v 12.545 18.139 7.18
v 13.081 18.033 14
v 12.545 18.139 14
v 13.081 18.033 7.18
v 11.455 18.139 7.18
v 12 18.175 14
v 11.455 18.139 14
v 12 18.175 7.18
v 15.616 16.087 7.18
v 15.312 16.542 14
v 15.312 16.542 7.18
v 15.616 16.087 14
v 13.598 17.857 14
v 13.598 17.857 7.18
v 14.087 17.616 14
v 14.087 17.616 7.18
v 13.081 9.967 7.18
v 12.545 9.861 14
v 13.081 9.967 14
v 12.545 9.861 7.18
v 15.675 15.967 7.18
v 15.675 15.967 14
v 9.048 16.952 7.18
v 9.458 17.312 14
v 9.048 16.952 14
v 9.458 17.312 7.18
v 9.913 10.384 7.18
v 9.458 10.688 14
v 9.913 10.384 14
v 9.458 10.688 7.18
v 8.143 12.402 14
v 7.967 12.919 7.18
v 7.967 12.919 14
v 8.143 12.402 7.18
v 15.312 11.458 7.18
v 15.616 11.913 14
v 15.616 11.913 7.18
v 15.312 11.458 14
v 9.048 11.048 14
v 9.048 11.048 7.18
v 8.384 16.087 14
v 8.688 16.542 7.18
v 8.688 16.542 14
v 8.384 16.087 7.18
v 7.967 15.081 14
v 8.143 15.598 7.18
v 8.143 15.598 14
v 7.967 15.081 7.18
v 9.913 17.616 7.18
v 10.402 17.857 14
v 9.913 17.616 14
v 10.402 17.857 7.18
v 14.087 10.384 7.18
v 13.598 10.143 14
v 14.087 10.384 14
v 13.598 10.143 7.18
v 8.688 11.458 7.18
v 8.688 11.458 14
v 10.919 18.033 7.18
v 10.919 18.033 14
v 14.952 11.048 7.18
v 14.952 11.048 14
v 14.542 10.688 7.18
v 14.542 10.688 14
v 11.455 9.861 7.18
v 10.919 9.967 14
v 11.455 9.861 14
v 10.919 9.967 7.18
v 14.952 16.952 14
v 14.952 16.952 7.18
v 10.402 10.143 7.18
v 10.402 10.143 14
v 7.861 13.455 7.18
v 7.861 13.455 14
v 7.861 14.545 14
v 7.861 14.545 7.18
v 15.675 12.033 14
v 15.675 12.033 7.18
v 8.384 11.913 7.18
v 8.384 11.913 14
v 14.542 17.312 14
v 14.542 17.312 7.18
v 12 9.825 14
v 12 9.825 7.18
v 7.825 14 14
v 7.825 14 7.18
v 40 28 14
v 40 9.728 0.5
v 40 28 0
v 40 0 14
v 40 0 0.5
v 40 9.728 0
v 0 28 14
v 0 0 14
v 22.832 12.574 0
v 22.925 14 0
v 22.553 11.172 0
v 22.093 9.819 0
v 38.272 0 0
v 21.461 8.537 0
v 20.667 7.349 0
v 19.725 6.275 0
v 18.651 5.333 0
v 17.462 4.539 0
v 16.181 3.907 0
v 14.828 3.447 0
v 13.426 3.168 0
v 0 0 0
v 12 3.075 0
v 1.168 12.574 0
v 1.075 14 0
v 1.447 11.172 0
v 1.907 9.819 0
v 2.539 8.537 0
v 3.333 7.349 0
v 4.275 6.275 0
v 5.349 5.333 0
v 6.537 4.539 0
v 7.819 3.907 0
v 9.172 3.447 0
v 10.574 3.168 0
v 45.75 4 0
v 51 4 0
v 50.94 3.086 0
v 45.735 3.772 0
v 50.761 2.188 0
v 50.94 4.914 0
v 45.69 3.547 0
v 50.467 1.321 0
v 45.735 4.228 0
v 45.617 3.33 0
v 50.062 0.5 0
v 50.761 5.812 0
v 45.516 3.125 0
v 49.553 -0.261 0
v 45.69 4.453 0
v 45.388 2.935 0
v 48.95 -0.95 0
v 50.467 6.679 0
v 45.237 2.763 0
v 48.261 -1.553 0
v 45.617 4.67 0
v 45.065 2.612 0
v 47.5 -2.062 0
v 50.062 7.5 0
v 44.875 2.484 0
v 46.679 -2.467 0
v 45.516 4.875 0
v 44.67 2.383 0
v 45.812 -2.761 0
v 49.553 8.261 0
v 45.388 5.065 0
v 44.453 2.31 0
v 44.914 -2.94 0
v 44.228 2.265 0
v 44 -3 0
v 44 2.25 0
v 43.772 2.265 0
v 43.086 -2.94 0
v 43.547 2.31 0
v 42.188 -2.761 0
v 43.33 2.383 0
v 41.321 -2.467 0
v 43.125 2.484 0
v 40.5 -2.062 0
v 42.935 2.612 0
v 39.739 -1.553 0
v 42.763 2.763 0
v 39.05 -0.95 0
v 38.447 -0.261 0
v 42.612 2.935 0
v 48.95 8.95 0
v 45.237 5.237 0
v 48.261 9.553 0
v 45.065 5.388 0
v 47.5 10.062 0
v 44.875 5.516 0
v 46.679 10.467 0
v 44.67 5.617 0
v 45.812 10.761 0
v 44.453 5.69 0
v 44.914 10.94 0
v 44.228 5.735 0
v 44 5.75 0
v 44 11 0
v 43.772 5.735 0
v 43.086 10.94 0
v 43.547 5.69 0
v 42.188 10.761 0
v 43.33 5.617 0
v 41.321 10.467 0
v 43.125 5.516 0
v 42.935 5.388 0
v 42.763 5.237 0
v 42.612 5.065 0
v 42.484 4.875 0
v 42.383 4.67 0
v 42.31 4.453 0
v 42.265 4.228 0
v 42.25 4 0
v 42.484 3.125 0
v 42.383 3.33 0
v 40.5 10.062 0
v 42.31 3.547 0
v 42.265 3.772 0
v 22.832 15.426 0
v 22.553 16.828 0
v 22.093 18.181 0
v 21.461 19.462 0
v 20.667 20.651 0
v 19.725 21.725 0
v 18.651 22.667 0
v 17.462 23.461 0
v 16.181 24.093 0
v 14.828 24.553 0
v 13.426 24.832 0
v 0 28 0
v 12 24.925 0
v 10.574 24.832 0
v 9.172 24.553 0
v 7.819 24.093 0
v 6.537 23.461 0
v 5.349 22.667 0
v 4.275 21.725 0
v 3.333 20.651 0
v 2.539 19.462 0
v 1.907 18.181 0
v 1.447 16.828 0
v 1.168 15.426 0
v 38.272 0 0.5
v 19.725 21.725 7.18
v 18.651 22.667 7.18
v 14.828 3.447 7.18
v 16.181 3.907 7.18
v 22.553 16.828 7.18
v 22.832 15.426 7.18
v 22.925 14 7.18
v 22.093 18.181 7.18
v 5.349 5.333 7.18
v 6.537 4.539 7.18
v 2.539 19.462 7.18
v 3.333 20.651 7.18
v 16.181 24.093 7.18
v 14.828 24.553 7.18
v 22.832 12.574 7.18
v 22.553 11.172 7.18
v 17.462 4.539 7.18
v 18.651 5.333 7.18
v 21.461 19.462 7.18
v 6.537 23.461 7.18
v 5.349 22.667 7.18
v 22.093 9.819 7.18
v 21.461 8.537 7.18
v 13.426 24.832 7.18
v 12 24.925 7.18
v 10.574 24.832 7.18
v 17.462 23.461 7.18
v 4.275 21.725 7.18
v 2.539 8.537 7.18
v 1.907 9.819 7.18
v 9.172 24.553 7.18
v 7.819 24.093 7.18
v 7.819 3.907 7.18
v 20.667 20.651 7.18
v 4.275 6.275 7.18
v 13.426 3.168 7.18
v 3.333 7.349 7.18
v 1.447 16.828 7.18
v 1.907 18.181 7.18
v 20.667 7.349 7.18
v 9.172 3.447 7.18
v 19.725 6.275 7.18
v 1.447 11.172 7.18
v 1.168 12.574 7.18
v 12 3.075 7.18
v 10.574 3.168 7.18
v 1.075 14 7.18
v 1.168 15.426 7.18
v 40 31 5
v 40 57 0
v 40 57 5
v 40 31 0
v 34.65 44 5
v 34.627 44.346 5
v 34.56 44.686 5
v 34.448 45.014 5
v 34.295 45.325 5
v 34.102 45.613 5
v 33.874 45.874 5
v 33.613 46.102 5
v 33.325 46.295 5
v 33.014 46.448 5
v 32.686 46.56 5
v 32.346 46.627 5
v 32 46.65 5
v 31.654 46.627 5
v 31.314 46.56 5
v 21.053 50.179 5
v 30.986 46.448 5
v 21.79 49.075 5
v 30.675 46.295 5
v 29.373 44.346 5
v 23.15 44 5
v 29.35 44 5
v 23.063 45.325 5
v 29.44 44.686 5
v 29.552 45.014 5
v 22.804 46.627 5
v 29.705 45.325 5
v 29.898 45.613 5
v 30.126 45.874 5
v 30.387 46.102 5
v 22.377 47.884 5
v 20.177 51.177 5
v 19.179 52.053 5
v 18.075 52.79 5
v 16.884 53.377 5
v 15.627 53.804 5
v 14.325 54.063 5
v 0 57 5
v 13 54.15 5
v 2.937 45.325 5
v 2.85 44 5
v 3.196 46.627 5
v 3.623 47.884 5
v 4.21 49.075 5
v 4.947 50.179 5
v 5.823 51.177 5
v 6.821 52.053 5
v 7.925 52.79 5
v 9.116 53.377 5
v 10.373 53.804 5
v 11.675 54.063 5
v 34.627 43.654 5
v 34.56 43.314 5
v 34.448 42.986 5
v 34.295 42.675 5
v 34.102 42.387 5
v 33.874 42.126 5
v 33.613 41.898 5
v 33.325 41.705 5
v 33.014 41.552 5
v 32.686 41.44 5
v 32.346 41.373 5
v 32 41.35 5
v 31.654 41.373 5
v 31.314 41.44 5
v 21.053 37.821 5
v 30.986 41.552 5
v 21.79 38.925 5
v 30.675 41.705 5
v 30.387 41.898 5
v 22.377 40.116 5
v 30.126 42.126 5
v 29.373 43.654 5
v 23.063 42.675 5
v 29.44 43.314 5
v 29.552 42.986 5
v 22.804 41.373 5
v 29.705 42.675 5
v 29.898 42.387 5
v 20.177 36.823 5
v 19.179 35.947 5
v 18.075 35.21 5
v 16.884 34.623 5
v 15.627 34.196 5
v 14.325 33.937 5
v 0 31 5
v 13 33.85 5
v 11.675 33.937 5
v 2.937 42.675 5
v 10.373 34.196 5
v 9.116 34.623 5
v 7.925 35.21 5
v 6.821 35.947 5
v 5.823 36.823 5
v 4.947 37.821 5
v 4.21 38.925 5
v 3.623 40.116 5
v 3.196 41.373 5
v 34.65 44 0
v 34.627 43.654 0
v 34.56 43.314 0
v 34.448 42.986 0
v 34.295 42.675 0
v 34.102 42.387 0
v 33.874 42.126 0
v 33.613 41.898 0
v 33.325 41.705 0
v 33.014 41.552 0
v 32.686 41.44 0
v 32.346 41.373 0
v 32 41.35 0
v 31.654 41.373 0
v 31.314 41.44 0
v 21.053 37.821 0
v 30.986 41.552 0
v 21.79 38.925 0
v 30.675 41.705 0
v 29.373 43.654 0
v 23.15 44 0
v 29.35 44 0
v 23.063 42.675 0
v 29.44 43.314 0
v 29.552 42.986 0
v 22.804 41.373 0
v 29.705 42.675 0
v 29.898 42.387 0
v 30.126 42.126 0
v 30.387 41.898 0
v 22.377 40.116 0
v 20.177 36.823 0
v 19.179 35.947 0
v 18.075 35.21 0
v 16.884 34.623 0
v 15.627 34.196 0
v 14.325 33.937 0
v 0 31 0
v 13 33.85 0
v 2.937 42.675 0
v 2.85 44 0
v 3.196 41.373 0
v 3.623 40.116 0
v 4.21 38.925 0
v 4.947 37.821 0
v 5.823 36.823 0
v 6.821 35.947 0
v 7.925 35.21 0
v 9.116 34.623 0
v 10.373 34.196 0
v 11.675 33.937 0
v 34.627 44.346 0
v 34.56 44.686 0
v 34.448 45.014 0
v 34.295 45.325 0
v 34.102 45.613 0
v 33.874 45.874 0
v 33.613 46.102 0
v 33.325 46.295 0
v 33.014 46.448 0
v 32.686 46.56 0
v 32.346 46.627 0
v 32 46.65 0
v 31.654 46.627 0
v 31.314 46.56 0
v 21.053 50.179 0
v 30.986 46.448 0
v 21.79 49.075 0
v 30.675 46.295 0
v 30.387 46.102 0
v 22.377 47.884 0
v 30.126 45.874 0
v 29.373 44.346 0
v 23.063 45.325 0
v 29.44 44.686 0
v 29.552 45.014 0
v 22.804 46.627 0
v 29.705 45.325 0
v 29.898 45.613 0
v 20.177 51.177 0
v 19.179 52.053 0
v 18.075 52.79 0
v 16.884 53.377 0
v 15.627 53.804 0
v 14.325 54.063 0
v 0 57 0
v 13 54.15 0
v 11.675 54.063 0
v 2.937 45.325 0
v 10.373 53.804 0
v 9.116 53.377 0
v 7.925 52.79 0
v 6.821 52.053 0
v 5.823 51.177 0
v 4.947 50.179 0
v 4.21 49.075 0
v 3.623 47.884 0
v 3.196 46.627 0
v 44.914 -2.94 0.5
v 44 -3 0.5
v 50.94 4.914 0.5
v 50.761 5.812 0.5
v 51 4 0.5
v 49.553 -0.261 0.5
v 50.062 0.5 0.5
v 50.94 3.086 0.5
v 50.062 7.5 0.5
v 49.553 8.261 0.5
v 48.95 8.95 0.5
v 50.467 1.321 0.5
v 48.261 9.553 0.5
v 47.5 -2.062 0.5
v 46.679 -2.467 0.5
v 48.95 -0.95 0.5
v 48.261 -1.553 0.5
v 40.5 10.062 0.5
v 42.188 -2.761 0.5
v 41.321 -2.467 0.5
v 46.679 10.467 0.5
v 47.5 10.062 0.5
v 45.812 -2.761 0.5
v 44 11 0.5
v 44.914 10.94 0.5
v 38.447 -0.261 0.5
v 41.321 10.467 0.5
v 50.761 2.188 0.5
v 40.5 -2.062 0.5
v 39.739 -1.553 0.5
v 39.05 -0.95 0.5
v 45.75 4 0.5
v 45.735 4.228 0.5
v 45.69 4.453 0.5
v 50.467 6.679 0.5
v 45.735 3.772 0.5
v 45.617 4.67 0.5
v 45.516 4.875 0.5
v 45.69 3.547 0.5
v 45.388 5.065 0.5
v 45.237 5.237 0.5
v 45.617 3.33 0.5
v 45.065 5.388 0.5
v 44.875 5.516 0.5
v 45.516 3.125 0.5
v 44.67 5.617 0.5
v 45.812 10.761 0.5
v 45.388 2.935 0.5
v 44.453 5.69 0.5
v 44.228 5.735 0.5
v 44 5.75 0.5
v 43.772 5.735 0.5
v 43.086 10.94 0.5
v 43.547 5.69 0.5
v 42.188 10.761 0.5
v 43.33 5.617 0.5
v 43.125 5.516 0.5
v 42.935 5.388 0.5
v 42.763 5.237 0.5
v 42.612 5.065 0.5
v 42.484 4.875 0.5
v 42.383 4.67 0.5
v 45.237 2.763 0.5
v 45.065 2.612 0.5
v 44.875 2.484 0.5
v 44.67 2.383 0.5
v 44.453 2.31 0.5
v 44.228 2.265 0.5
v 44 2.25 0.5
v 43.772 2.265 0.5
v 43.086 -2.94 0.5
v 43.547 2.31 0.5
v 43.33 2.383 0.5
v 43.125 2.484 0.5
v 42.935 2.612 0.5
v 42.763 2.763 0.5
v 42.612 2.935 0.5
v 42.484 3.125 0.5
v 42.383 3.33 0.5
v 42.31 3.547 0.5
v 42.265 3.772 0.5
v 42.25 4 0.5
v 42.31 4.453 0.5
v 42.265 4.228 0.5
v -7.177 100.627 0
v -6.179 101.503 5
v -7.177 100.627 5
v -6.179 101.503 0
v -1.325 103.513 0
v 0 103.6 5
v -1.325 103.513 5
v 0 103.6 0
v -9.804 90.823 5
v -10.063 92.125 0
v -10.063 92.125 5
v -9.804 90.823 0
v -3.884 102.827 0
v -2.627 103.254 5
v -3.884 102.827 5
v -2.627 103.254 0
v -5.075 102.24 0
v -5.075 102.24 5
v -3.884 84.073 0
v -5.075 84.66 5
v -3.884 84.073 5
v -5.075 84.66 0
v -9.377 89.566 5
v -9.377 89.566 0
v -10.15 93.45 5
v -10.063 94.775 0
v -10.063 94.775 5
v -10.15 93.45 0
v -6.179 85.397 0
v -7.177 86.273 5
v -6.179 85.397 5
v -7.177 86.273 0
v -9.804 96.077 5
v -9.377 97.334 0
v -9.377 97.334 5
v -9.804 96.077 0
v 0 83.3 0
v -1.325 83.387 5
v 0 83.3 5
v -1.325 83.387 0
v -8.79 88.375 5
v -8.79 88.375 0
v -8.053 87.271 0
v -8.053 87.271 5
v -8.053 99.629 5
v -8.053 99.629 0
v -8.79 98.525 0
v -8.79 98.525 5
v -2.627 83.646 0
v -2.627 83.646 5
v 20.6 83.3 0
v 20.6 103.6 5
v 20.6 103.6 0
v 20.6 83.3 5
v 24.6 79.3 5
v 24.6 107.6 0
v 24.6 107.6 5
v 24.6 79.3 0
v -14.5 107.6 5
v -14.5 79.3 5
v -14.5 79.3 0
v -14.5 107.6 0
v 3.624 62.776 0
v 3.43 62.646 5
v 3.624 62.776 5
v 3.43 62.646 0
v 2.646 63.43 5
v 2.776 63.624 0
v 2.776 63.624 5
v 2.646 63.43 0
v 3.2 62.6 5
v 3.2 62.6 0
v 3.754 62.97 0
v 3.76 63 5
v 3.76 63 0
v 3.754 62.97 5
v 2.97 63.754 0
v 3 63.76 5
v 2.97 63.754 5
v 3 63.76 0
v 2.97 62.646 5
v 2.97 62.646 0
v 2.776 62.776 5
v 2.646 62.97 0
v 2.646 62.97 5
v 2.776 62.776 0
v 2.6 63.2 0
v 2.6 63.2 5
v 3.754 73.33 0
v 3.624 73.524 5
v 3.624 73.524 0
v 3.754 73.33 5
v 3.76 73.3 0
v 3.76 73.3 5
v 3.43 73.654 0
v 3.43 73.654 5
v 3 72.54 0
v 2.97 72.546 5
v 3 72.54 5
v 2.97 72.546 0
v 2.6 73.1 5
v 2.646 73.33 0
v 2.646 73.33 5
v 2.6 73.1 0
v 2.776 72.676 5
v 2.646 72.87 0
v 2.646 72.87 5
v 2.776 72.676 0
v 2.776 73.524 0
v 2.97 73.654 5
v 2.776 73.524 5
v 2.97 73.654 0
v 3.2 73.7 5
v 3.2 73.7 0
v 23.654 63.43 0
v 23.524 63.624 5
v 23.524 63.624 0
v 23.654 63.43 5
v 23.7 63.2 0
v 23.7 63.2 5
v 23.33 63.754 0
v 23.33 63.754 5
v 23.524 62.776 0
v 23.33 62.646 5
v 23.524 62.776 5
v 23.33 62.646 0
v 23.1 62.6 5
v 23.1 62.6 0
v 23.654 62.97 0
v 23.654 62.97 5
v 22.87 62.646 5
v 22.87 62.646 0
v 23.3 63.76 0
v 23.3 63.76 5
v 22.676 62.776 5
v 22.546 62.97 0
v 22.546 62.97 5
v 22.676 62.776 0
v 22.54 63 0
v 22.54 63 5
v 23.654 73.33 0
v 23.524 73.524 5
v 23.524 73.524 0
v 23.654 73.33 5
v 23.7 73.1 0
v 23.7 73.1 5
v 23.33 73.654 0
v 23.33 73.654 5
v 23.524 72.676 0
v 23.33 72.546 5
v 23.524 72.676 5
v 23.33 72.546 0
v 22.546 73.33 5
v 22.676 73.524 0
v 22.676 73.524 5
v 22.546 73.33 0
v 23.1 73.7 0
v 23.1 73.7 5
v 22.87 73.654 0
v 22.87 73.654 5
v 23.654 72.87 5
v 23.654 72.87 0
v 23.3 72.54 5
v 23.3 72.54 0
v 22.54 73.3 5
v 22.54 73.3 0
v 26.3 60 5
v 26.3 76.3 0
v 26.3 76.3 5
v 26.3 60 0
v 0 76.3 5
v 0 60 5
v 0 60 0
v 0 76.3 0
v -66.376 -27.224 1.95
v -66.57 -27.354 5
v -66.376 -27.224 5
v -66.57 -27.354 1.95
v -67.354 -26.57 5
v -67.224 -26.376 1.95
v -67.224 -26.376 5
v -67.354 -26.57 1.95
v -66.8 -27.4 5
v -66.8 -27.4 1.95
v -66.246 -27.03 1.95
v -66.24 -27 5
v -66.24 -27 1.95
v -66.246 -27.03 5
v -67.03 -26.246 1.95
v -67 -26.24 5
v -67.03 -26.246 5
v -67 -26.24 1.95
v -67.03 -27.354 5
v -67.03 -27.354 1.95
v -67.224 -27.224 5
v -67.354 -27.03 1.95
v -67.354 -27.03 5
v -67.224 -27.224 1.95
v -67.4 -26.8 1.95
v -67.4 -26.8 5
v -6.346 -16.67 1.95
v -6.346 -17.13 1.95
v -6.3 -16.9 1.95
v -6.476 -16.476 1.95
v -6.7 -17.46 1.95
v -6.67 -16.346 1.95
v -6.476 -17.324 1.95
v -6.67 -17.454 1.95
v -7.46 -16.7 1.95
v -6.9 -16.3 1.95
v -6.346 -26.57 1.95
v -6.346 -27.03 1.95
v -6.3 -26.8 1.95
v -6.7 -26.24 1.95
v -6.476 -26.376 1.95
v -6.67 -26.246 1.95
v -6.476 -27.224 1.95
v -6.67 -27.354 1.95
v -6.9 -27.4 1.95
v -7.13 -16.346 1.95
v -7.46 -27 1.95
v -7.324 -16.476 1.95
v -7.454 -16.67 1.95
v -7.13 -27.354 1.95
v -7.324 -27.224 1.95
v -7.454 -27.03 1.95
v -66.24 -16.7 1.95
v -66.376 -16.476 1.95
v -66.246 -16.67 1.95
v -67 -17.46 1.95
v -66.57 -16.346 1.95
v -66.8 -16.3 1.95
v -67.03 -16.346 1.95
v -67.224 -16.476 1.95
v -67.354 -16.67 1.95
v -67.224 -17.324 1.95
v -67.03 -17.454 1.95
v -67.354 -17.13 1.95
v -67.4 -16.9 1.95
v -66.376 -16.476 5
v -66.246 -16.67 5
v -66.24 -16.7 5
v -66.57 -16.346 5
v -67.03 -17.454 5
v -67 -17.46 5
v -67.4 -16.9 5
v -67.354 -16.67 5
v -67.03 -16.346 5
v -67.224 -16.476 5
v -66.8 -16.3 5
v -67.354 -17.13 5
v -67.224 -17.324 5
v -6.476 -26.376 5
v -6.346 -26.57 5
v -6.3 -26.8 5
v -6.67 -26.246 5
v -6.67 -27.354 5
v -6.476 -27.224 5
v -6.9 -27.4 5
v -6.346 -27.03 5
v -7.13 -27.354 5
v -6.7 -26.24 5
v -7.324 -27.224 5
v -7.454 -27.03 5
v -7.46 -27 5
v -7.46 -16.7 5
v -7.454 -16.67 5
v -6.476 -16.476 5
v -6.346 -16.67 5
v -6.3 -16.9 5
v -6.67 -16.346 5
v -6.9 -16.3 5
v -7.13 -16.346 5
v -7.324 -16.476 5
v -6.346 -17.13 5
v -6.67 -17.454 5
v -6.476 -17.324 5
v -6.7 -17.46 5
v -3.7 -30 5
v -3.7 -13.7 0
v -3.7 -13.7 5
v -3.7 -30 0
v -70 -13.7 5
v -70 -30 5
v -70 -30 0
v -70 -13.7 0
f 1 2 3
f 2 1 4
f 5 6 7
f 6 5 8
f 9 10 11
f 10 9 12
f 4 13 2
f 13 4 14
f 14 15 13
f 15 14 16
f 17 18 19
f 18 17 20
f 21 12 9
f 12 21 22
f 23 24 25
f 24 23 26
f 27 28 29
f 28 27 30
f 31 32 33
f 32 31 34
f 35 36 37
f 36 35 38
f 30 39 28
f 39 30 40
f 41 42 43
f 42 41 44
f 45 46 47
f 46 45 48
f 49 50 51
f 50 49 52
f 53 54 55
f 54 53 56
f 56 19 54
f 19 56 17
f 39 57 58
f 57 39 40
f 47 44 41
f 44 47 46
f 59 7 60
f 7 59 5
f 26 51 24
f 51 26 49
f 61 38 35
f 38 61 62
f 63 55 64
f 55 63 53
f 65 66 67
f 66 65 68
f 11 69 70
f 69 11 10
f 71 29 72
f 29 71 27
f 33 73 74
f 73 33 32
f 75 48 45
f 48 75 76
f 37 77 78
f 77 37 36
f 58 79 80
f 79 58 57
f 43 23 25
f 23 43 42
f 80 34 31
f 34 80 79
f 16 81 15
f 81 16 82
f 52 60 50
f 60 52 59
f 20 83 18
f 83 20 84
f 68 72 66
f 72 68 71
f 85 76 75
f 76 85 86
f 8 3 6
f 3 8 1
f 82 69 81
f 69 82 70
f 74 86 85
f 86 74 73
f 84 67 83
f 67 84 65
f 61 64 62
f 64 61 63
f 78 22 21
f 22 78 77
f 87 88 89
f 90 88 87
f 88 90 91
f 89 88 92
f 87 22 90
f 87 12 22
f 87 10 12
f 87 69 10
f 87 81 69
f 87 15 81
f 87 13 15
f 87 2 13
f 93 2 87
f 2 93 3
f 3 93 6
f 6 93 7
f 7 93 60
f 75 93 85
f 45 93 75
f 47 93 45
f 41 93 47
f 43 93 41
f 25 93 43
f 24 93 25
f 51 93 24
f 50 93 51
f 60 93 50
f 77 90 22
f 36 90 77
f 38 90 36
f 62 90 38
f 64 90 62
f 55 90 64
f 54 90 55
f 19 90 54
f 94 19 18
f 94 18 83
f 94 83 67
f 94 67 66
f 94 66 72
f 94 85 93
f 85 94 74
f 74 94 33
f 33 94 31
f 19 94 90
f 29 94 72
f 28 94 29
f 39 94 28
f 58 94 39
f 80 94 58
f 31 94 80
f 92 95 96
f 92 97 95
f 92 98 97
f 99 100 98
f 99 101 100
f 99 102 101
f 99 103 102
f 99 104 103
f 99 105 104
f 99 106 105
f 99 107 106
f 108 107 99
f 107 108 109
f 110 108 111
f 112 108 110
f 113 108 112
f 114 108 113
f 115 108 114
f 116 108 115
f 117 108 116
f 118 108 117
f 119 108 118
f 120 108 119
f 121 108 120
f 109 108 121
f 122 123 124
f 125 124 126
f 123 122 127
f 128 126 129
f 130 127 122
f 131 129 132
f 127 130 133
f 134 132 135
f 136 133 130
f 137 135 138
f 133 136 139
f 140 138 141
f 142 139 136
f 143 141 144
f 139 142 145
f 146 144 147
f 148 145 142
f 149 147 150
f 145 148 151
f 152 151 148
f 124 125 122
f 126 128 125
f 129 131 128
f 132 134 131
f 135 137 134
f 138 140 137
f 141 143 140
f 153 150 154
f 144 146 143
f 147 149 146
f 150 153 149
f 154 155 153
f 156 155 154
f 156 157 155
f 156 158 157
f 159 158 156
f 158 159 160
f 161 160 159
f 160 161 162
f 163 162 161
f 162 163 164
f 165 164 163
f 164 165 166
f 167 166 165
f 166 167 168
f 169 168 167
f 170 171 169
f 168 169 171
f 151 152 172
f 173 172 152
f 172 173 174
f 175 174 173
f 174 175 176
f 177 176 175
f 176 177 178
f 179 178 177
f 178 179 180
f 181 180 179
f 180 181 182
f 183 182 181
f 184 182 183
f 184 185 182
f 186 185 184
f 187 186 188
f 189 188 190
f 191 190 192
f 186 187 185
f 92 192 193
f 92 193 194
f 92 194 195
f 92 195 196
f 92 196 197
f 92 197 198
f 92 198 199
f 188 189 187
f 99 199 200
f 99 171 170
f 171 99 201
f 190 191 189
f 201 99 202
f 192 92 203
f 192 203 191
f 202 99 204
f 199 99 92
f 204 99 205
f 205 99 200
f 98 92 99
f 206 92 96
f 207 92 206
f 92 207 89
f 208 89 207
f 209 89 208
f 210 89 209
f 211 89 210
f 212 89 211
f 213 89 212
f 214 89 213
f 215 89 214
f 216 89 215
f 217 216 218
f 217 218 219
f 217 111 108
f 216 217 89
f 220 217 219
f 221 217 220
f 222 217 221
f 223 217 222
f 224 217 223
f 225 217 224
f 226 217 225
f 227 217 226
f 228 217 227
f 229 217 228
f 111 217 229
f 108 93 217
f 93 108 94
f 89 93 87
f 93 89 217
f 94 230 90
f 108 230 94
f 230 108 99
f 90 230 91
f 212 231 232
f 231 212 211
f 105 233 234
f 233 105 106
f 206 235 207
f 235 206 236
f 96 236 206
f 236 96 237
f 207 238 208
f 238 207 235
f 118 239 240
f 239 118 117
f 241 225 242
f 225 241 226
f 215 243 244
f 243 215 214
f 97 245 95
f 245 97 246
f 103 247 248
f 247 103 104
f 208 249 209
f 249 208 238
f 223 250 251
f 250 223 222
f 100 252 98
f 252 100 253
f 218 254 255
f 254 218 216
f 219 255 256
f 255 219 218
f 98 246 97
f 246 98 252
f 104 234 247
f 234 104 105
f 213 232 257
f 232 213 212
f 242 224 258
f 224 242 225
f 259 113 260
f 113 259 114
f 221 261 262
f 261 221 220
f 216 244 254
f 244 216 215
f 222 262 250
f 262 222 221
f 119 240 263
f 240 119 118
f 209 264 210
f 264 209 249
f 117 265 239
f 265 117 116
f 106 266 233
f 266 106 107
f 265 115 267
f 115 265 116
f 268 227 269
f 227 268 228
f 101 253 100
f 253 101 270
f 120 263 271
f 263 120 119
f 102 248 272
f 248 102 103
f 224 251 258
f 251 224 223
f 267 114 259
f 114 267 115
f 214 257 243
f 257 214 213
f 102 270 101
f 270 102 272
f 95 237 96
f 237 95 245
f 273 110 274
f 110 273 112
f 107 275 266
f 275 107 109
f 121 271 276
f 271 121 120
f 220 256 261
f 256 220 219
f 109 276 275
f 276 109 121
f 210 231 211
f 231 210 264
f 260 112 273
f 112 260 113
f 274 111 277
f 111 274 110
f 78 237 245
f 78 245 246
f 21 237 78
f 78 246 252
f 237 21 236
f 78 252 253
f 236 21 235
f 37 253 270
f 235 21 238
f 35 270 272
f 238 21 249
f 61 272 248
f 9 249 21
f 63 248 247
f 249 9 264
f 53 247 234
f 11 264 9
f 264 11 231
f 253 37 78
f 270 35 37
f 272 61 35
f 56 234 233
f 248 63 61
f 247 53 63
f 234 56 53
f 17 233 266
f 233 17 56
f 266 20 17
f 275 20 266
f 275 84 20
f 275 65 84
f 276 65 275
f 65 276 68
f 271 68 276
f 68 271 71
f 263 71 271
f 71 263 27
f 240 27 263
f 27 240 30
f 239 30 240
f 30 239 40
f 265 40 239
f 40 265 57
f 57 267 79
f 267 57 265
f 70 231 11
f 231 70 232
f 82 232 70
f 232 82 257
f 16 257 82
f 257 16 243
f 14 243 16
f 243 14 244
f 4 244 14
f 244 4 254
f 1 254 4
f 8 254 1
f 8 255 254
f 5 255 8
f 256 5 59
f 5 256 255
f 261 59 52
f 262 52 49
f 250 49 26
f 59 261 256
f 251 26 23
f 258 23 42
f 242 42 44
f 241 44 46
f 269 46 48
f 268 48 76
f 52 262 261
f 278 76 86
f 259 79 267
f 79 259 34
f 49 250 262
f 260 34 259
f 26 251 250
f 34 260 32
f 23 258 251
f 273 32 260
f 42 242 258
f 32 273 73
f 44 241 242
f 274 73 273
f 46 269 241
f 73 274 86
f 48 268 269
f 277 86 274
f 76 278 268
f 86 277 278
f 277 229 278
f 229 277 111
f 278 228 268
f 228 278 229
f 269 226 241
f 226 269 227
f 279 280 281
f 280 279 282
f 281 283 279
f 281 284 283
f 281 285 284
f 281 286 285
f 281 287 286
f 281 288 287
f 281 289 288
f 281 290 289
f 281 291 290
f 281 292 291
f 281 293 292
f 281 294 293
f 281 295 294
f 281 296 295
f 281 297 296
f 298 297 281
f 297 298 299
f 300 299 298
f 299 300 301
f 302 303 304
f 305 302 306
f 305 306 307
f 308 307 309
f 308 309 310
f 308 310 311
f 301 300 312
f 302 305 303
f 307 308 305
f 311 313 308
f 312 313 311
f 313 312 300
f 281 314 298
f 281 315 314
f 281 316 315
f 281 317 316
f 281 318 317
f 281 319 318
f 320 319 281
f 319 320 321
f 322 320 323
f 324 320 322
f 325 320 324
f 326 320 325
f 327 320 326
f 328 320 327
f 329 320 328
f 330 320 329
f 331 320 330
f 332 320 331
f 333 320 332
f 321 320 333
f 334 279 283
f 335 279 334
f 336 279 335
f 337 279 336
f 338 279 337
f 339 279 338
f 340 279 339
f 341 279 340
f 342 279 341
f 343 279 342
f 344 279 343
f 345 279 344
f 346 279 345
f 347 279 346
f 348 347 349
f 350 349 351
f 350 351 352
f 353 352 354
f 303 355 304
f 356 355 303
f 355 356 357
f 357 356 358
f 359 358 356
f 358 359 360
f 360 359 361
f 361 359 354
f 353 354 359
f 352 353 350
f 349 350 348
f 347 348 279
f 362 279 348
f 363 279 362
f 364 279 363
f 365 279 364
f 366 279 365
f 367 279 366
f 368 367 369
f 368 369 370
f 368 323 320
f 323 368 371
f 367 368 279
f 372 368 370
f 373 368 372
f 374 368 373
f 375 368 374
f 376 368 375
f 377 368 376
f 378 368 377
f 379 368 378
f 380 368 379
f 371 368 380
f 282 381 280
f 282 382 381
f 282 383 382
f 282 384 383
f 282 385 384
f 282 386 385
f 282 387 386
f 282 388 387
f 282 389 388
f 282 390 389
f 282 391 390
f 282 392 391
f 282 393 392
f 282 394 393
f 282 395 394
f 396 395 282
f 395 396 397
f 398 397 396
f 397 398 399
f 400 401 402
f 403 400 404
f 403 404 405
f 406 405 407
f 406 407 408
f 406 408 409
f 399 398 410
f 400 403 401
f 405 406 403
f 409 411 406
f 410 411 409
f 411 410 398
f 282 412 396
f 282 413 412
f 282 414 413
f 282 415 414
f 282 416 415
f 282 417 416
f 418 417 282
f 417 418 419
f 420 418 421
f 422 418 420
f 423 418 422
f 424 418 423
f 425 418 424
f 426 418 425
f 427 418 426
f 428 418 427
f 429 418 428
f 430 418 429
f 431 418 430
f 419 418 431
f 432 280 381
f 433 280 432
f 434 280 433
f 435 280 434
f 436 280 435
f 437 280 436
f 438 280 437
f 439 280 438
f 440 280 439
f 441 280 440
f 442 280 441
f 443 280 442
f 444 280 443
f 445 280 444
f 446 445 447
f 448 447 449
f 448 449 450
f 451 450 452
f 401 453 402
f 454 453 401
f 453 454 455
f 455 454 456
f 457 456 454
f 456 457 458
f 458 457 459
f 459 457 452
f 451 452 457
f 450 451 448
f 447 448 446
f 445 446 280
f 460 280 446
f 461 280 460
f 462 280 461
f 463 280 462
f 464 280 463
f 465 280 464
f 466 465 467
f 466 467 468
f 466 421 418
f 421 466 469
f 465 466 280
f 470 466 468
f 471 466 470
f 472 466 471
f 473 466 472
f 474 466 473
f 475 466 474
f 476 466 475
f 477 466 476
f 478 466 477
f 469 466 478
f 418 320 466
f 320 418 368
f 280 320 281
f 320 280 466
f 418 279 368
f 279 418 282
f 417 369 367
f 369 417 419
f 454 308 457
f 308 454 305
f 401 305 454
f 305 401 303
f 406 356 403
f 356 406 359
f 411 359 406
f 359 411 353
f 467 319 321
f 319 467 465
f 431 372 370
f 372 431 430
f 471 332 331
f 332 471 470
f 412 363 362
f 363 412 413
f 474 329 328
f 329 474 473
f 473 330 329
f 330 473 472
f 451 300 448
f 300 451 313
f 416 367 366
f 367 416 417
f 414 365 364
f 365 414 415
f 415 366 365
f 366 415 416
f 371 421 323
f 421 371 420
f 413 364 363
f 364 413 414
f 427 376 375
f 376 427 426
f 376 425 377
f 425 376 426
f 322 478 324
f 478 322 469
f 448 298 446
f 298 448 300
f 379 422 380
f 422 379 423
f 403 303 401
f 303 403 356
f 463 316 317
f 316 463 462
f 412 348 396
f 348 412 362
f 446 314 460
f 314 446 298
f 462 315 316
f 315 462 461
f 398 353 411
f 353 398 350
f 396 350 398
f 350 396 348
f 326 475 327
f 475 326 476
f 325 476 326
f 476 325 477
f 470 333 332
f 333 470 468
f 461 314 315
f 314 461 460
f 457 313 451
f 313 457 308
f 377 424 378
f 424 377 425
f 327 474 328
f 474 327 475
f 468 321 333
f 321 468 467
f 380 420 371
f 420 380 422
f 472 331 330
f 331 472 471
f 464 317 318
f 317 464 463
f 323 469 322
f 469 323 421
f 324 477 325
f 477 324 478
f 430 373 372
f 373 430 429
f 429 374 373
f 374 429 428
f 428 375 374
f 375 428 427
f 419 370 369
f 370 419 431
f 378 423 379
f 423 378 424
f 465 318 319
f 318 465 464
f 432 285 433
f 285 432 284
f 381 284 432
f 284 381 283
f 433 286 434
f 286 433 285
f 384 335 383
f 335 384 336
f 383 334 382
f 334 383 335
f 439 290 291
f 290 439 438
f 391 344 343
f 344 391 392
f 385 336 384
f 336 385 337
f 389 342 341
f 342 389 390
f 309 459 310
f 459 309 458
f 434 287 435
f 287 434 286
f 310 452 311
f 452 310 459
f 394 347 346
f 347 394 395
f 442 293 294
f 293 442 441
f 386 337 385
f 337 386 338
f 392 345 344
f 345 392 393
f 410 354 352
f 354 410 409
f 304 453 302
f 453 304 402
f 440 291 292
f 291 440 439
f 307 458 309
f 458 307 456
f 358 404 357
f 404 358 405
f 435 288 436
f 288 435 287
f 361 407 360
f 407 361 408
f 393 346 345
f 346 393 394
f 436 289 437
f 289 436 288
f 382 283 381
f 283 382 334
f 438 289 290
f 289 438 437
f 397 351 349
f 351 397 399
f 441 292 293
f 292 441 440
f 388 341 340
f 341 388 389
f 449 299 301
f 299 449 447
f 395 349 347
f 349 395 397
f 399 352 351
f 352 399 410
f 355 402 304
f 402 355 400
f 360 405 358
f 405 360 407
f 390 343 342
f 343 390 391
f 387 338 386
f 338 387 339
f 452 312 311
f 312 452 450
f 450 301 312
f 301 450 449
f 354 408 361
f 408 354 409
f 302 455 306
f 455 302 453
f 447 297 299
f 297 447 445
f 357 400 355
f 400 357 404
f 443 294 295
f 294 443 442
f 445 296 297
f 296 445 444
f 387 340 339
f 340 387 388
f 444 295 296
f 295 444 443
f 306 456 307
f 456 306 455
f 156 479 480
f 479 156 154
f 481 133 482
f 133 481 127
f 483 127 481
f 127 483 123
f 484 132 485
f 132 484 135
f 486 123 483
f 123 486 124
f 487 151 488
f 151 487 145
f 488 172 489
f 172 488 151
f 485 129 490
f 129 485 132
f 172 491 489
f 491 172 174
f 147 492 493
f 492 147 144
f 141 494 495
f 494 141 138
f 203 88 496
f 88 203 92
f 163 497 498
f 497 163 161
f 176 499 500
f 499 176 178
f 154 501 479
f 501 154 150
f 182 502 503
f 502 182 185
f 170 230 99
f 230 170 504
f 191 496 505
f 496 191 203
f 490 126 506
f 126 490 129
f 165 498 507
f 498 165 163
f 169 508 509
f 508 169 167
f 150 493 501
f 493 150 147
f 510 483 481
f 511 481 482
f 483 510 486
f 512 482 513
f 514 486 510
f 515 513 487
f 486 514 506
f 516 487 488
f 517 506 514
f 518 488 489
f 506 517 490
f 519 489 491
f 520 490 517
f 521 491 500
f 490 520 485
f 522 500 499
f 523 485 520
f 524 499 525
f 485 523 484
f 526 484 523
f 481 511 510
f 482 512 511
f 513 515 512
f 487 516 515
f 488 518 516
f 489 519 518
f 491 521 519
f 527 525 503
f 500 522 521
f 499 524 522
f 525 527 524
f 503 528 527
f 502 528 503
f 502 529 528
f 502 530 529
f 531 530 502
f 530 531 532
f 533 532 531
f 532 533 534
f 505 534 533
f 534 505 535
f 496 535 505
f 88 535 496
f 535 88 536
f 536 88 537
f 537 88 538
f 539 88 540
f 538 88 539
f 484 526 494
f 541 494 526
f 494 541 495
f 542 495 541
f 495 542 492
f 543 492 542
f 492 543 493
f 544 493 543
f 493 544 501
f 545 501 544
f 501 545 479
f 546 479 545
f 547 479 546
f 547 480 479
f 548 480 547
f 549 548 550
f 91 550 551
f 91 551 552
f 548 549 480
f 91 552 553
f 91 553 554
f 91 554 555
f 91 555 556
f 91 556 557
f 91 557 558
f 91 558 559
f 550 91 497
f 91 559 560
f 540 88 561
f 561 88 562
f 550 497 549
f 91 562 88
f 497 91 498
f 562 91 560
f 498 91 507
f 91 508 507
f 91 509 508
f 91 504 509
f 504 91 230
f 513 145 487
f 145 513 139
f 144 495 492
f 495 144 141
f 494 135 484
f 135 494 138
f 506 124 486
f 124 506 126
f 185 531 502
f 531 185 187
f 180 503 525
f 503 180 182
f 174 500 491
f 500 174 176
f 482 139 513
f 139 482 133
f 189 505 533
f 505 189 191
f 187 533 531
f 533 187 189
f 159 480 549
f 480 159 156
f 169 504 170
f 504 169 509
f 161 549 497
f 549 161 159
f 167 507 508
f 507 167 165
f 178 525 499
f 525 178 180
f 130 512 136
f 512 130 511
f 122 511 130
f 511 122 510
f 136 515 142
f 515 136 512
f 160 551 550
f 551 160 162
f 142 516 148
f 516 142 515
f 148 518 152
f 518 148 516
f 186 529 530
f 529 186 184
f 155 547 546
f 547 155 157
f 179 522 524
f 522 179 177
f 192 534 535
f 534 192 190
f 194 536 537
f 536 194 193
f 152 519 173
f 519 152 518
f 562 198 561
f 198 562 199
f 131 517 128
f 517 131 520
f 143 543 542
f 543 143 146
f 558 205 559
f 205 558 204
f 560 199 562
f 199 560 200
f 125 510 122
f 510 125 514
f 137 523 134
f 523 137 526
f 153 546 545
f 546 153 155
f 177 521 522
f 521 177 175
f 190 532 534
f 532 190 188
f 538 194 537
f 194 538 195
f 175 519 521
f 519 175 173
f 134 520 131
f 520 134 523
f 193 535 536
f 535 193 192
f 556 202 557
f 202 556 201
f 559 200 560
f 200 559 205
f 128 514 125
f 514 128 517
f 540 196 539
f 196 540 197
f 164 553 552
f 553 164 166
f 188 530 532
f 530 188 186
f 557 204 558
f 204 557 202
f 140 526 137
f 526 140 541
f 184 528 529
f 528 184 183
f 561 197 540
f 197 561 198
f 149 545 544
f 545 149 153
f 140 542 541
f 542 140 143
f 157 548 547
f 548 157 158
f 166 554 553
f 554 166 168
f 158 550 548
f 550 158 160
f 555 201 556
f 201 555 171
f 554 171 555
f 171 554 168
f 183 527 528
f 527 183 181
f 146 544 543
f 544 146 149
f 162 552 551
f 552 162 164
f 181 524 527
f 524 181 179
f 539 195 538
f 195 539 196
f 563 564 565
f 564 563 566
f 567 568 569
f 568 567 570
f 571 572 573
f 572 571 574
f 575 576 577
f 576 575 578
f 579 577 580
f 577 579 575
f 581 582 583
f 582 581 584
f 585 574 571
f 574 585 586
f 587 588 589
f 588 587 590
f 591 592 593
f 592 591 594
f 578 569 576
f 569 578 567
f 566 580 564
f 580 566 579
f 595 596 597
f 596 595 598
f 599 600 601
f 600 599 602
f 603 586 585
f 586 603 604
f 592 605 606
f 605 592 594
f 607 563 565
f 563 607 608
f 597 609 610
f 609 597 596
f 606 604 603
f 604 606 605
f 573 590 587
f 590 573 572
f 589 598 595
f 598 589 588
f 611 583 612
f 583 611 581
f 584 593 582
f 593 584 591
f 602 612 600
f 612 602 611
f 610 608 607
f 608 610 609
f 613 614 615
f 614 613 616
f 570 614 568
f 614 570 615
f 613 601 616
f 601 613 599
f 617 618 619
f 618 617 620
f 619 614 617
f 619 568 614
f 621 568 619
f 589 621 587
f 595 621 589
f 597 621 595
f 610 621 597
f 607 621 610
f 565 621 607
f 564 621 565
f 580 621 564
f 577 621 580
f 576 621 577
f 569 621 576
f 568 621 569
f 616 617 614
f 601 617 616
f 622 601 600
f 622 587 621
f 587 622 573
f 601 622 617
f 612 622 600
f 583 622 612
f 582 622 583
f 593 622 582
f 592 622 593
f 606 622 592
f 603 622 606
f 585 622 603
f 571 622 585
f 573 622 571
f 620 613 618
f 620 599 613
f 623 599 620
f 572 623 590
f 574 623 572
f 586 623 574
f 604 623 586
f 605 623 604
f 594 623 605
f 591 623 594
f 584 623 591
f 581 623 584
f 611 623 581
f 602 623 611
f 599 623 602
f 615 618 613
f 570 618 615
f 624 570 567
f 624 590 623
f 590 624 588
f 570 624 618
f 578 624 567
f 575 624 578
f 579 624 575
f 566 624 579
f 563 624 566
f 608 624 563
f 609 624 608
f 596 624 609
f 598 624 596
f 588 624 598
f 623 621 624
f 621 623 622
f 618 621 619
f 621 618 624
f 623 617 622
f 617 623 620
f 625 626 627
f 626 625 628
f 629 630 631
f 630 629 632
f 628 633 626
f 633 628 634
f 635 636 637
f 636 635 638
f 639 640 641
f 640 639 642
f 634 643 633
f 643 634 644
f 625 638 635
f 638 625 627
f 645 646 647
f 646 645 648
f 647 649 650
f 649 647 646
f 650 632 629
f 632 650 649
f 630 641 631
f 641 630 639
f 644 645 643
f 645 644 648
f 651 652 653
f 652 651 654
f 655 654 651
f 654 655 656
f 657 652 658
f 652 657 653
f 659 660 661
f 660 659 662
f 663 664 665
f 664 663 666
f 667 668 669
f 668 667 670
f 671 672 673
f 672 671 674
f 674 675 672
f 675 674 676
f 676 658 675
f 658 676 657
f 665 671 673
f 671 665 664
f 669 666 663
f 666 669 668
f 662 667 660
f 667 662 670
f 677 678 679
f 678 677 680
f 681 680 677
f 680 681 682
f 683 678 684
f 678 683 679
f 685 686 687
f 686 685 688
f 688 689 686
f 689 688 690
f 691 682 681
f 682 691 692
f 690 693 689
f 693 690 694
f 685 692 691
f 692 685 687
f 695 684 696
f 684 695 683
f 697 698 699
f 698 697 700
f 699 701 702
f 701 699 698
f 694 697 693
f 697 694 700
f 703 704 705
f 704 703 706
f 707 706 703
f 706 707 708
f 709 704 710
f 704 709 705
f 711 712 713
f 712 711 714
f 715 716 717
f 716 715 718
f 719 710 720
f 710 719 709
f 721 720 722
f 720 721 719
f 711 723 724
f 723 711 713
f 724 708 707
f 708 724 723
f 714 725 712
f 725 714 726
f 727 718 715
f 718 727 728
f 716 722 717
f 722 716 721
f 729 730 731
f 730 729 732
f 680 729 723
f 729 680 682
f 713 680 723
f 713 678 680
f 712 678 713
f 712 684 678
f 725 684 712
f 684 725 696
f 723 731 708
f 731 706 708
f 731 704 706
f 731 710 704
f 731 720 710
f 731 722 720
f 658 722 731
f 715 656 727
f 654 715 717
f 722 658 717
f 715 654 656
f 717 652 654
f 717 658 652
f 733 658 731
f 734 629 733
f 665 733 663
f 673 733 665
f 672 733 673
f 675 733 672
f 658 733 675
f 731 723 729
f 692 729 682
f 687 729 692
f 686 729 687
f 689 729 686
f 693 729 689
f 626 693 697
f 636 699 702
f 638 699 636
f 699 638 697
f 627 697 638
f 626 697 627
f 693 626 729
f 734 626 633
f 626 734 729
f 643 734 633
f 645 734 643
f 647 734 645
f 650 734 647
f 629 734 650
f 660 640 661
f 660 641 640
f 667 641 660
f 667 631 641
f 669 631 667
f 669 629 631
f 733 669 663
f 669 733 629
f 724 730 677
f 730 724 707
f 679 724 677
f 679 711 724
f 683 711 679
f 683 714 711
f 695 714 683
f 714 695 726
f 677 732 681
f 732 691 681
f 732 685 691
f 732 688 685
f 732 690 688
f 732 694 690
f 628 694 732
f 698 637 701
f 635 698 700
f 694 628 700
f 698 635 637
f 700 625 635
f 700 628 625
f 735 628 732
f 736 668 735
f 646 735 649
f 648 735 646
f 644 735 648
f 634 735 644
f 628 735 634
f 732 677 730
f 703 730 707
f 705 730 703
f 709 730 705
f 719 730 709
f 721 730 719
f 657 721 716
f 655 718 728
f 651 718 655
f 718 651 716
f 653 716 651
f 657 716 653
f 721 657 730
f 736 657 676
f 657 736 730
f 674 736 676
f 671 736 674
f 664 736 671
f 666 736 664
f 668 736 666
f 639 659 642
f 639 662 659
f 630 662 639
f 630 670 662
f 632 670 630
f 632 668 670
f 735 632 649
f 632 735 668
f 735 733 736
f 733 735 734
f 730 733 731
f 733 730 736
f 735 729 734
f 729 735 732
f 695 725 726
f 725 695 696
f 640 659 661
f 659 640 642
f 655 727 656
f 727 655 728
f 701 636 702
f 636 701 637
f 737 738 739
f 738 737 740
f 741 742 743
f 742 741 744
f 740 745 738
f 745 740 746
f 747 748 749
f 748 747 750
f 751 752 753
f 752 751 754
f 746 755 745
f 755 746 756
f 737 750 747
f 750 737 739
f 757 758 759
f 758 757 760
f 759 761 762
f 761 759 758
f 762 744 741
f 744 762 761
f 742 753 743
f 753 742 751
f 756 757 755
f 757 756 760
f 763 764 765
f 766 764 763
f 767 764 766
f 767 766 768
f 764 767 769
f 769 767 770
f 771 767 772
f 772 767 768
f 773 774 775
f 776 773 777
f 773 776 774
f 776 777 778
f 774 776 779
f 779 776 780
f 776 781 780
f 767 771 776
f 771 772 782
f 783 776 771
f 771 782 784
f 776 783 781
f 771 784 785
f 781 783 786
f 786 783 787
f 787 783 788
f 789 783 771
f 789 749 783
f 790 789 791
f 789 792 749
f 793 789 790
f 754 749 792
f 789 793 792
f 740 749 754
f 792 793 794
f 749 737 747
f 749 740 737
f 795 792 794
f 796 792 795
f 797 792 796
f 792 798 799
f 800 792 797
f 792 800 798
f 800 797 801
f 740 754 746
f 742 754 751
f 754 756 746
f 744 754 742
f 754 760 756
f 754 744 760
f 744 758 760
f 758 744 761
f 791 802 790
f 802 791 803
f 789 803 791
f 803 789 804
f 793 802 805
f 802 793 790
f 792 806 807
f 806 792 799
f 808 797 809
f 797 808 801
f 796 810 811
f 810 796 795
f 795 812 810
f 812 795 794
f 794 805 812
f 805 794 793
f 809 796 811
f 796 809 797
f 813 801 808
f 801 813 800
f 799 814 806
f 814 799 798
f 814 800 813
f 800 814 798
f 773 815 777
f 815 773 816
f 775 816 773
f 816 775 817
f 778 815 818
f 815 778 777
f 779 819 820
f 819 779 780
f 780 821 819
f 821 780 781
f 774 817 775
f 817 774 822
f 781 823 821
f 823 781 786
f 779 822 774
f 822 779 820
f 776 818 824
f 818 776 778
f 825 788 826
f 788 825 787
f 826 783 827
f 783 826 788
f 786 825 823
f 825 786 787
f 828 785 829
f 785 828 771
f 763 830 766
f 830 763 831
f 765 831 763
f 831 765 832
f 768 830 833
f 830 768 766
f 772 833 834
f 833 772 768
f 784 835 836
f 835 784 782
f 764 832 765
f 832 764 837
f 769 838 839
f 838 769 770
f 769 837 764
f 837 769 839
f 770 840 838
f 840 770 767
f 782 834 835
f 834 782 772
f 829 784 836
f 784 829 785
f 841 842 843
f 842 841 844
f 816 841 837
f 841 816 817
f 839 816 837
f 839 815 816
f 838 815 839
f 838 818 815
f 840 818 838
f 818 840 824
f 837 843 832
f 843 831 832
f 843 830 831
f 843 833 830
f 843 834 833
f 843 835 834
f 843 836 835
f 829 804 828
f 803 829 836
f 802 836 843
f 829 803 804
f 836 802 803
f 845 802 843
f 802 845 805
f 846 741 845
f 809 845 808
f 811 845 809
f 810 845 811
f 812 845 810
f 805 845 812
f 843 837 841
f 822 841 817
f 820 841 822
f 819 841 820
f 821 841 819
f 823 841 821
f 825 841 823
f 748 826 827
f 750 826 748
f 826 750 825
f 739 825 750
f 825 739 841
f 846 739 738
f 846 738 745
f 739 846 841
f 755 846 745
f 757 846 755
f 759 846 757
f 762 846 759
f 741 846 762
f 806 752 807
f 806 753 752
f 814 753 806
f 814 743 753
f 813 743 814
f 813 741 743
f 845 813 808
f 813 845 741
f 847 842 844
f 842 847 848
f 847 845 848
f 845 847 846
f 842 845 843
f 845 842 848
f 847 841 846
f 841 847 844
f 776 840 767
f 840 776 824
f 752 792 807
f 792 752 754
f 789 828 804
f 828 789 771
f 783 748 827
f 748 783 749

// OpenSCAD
// Gen-DF — fit coupon: O20/O5 THROUGH pockets at carrier thickness (test on a steel offcut), 608 seat,
// D-flat bore, gap shim, and one bobbin-bay slice (bobbin footprint + bay_clear) to test former fit.
include <parameters.scad>;
$fn = 48;
// D-flat keyed bore: flat faces +X (angle 0 = magnet pocket 0 = index notch)
module dflat_bore(h) {
    intersection() {
        cylinder(d=shaft_bore, h=h);
        translate([-shaft_bore, -shaft_bore, 0]) cube([shaft_bore + dflat_x, 2*shaft_bore, h]);
    }
}
module sector_2d(r_in, r_out, ang) {
    polygon([
        for (a = [-ang/2 : ang/24 : ang/2]) [r_in*cos(a), r_in*sin(a)],
        for (a = [ang/2 : -ang/24 : -ang/2]) [r_out*cos(a), r_out*sin(a)]
    ]);
}
module footprint_2d() { offset(r=wall) sector_2d(coil_id_r, coil_od_r, span_deg); }
module hub_2d()       { offset(delta=-coil_core_inset) sector_2d(coil_id_r, coil_od_r, span_deg); }

block_w = 40; block_d = 28; block_h = 14;
difference() {
    cube([block_w, block_d, block_h]);
    translate([12, block_d/2, -0.02]) cylinder(d=bearing_d, h=bearing_h);
    translate([12, block_d/2, -0.1]) dflat_bore(block_h + 1);
}
translate([0, block_d + 3, 0]) difference() {
    cube([40, 26, carrier_thick]);
    translate([13, 13, -0.1]) cylinder(d=large_pocket_d, h=carrier_thick + 0.2);
    translate([32, 13, -0.1]) cylinder(d=small_pocket_d, h=carrier_thick + 0.2);
}
translate([block_w + 4, 4, 0])
    difference() {
        cylinder(d=spacer_pad_od, h=gap_spacer_h);
        translate([0, 0, -0.1]) cylinder(d=spacer_pad_id, h=gap_spacer_h + 0.2);
    }
// KEYHOLE pole pocket test (2026-10-18): O20 disc pocket + N42 20x10x5 block pocket merged (hull), as on the arcs.
// Drop a disc and a block in: they must push each other onto the two far walls and sit flat. Block pocket has corner reliefs.
translate([0, block_d + 3 + 26 + 3 + block_radial + block_pocket_clear + 6 + 3 + max(block_tangential, large_pocket_d) / 2 + 4, 0]) difference() {
    translate([-14.5, -(max(block_tangential, large_pocket_d) / 2 + 4), 0]) cube([14.5 + abs(block_R_list[0] - R_large) + block_radial / 2 + 4, max(block_tangential, large_pocket_d) + 8, carrier_thick]);
    translate([0, 0, -0.1]) {
        translate([disc_pocket_shift * sign(block_R_list[0] - R_large), 0, 0]) cylinder(d=large_pocket_d, h=carrier_thick + 0.2);
        translate([disc_pocket_shift * sign(block_R_list[0] - R_large), -(block_tangential + block_pocket_clear)/2, 0])
            cube([abs(block_R_list[0] - R_large) - abs(block_pocket_shift) + (block_radial + block_pocket_clear)/2 - disc_pocket_shift * sign(block_R_list[0] - R_large), block_tangential + block_pocket_clear, carrier_thick + 0.2]);
    }
}
// N42 20x10x5 BLOCK through-pocket test (block + block_pocket_clear, 1.2 mm corner reliefs), 2026-10-16
translate([0, block_d + 3 + 26 + 3, 0]) difference() {
    cube([block_tangential + block_pocket_clear + 6, block_radial + block_pocket_clear + 6, carrier_thick]);
    translate([3, 3, -0.1]) cube([block_tangential + block_pocket_clear, block_radial + block_pocket_clear, carrier_thick + 0.2]);
    for (x = [3.2, 3 + block_tangential + block_pocket_clear - 0.2], y = [3.2, 3 + block_radial + block_pocket_clear - 0.2])
        translate([x, y, -0.1]) cylinder(d=1.2, h=carrier_thick + 0.2, $fn=16);
}
// N52 60x10x3 BAR blind-pocket test (2026-10-21): bar + 0.3 mm, depth block2_pocket_depth: the bar face must sit flush with the top.
translate([-70, -30, 0]) difference() {
    cube([block2_tangential + block2_pocket_clear + 6, block2_radial + block2_pocket_clear + 6, carrier_thick]);
    translate([3, 3, carrier_thick - block2_pocket_depth]) cube([block2_tangential + block2_pocket_clear, block2_radial + block2_pocket_clear, carrier_thick]);
    for (x = [3.2, 3 + block2_tangential + block2_pocket_clear - 0.2], y = [3.2, 3 + block2_radial + block2_pocket_clear - 0.2])
        translate([x, y, carrier_thick - block2_pocket_depth]) cylinder(d=1.2, h=carrier_thick, $fn=16);
}
